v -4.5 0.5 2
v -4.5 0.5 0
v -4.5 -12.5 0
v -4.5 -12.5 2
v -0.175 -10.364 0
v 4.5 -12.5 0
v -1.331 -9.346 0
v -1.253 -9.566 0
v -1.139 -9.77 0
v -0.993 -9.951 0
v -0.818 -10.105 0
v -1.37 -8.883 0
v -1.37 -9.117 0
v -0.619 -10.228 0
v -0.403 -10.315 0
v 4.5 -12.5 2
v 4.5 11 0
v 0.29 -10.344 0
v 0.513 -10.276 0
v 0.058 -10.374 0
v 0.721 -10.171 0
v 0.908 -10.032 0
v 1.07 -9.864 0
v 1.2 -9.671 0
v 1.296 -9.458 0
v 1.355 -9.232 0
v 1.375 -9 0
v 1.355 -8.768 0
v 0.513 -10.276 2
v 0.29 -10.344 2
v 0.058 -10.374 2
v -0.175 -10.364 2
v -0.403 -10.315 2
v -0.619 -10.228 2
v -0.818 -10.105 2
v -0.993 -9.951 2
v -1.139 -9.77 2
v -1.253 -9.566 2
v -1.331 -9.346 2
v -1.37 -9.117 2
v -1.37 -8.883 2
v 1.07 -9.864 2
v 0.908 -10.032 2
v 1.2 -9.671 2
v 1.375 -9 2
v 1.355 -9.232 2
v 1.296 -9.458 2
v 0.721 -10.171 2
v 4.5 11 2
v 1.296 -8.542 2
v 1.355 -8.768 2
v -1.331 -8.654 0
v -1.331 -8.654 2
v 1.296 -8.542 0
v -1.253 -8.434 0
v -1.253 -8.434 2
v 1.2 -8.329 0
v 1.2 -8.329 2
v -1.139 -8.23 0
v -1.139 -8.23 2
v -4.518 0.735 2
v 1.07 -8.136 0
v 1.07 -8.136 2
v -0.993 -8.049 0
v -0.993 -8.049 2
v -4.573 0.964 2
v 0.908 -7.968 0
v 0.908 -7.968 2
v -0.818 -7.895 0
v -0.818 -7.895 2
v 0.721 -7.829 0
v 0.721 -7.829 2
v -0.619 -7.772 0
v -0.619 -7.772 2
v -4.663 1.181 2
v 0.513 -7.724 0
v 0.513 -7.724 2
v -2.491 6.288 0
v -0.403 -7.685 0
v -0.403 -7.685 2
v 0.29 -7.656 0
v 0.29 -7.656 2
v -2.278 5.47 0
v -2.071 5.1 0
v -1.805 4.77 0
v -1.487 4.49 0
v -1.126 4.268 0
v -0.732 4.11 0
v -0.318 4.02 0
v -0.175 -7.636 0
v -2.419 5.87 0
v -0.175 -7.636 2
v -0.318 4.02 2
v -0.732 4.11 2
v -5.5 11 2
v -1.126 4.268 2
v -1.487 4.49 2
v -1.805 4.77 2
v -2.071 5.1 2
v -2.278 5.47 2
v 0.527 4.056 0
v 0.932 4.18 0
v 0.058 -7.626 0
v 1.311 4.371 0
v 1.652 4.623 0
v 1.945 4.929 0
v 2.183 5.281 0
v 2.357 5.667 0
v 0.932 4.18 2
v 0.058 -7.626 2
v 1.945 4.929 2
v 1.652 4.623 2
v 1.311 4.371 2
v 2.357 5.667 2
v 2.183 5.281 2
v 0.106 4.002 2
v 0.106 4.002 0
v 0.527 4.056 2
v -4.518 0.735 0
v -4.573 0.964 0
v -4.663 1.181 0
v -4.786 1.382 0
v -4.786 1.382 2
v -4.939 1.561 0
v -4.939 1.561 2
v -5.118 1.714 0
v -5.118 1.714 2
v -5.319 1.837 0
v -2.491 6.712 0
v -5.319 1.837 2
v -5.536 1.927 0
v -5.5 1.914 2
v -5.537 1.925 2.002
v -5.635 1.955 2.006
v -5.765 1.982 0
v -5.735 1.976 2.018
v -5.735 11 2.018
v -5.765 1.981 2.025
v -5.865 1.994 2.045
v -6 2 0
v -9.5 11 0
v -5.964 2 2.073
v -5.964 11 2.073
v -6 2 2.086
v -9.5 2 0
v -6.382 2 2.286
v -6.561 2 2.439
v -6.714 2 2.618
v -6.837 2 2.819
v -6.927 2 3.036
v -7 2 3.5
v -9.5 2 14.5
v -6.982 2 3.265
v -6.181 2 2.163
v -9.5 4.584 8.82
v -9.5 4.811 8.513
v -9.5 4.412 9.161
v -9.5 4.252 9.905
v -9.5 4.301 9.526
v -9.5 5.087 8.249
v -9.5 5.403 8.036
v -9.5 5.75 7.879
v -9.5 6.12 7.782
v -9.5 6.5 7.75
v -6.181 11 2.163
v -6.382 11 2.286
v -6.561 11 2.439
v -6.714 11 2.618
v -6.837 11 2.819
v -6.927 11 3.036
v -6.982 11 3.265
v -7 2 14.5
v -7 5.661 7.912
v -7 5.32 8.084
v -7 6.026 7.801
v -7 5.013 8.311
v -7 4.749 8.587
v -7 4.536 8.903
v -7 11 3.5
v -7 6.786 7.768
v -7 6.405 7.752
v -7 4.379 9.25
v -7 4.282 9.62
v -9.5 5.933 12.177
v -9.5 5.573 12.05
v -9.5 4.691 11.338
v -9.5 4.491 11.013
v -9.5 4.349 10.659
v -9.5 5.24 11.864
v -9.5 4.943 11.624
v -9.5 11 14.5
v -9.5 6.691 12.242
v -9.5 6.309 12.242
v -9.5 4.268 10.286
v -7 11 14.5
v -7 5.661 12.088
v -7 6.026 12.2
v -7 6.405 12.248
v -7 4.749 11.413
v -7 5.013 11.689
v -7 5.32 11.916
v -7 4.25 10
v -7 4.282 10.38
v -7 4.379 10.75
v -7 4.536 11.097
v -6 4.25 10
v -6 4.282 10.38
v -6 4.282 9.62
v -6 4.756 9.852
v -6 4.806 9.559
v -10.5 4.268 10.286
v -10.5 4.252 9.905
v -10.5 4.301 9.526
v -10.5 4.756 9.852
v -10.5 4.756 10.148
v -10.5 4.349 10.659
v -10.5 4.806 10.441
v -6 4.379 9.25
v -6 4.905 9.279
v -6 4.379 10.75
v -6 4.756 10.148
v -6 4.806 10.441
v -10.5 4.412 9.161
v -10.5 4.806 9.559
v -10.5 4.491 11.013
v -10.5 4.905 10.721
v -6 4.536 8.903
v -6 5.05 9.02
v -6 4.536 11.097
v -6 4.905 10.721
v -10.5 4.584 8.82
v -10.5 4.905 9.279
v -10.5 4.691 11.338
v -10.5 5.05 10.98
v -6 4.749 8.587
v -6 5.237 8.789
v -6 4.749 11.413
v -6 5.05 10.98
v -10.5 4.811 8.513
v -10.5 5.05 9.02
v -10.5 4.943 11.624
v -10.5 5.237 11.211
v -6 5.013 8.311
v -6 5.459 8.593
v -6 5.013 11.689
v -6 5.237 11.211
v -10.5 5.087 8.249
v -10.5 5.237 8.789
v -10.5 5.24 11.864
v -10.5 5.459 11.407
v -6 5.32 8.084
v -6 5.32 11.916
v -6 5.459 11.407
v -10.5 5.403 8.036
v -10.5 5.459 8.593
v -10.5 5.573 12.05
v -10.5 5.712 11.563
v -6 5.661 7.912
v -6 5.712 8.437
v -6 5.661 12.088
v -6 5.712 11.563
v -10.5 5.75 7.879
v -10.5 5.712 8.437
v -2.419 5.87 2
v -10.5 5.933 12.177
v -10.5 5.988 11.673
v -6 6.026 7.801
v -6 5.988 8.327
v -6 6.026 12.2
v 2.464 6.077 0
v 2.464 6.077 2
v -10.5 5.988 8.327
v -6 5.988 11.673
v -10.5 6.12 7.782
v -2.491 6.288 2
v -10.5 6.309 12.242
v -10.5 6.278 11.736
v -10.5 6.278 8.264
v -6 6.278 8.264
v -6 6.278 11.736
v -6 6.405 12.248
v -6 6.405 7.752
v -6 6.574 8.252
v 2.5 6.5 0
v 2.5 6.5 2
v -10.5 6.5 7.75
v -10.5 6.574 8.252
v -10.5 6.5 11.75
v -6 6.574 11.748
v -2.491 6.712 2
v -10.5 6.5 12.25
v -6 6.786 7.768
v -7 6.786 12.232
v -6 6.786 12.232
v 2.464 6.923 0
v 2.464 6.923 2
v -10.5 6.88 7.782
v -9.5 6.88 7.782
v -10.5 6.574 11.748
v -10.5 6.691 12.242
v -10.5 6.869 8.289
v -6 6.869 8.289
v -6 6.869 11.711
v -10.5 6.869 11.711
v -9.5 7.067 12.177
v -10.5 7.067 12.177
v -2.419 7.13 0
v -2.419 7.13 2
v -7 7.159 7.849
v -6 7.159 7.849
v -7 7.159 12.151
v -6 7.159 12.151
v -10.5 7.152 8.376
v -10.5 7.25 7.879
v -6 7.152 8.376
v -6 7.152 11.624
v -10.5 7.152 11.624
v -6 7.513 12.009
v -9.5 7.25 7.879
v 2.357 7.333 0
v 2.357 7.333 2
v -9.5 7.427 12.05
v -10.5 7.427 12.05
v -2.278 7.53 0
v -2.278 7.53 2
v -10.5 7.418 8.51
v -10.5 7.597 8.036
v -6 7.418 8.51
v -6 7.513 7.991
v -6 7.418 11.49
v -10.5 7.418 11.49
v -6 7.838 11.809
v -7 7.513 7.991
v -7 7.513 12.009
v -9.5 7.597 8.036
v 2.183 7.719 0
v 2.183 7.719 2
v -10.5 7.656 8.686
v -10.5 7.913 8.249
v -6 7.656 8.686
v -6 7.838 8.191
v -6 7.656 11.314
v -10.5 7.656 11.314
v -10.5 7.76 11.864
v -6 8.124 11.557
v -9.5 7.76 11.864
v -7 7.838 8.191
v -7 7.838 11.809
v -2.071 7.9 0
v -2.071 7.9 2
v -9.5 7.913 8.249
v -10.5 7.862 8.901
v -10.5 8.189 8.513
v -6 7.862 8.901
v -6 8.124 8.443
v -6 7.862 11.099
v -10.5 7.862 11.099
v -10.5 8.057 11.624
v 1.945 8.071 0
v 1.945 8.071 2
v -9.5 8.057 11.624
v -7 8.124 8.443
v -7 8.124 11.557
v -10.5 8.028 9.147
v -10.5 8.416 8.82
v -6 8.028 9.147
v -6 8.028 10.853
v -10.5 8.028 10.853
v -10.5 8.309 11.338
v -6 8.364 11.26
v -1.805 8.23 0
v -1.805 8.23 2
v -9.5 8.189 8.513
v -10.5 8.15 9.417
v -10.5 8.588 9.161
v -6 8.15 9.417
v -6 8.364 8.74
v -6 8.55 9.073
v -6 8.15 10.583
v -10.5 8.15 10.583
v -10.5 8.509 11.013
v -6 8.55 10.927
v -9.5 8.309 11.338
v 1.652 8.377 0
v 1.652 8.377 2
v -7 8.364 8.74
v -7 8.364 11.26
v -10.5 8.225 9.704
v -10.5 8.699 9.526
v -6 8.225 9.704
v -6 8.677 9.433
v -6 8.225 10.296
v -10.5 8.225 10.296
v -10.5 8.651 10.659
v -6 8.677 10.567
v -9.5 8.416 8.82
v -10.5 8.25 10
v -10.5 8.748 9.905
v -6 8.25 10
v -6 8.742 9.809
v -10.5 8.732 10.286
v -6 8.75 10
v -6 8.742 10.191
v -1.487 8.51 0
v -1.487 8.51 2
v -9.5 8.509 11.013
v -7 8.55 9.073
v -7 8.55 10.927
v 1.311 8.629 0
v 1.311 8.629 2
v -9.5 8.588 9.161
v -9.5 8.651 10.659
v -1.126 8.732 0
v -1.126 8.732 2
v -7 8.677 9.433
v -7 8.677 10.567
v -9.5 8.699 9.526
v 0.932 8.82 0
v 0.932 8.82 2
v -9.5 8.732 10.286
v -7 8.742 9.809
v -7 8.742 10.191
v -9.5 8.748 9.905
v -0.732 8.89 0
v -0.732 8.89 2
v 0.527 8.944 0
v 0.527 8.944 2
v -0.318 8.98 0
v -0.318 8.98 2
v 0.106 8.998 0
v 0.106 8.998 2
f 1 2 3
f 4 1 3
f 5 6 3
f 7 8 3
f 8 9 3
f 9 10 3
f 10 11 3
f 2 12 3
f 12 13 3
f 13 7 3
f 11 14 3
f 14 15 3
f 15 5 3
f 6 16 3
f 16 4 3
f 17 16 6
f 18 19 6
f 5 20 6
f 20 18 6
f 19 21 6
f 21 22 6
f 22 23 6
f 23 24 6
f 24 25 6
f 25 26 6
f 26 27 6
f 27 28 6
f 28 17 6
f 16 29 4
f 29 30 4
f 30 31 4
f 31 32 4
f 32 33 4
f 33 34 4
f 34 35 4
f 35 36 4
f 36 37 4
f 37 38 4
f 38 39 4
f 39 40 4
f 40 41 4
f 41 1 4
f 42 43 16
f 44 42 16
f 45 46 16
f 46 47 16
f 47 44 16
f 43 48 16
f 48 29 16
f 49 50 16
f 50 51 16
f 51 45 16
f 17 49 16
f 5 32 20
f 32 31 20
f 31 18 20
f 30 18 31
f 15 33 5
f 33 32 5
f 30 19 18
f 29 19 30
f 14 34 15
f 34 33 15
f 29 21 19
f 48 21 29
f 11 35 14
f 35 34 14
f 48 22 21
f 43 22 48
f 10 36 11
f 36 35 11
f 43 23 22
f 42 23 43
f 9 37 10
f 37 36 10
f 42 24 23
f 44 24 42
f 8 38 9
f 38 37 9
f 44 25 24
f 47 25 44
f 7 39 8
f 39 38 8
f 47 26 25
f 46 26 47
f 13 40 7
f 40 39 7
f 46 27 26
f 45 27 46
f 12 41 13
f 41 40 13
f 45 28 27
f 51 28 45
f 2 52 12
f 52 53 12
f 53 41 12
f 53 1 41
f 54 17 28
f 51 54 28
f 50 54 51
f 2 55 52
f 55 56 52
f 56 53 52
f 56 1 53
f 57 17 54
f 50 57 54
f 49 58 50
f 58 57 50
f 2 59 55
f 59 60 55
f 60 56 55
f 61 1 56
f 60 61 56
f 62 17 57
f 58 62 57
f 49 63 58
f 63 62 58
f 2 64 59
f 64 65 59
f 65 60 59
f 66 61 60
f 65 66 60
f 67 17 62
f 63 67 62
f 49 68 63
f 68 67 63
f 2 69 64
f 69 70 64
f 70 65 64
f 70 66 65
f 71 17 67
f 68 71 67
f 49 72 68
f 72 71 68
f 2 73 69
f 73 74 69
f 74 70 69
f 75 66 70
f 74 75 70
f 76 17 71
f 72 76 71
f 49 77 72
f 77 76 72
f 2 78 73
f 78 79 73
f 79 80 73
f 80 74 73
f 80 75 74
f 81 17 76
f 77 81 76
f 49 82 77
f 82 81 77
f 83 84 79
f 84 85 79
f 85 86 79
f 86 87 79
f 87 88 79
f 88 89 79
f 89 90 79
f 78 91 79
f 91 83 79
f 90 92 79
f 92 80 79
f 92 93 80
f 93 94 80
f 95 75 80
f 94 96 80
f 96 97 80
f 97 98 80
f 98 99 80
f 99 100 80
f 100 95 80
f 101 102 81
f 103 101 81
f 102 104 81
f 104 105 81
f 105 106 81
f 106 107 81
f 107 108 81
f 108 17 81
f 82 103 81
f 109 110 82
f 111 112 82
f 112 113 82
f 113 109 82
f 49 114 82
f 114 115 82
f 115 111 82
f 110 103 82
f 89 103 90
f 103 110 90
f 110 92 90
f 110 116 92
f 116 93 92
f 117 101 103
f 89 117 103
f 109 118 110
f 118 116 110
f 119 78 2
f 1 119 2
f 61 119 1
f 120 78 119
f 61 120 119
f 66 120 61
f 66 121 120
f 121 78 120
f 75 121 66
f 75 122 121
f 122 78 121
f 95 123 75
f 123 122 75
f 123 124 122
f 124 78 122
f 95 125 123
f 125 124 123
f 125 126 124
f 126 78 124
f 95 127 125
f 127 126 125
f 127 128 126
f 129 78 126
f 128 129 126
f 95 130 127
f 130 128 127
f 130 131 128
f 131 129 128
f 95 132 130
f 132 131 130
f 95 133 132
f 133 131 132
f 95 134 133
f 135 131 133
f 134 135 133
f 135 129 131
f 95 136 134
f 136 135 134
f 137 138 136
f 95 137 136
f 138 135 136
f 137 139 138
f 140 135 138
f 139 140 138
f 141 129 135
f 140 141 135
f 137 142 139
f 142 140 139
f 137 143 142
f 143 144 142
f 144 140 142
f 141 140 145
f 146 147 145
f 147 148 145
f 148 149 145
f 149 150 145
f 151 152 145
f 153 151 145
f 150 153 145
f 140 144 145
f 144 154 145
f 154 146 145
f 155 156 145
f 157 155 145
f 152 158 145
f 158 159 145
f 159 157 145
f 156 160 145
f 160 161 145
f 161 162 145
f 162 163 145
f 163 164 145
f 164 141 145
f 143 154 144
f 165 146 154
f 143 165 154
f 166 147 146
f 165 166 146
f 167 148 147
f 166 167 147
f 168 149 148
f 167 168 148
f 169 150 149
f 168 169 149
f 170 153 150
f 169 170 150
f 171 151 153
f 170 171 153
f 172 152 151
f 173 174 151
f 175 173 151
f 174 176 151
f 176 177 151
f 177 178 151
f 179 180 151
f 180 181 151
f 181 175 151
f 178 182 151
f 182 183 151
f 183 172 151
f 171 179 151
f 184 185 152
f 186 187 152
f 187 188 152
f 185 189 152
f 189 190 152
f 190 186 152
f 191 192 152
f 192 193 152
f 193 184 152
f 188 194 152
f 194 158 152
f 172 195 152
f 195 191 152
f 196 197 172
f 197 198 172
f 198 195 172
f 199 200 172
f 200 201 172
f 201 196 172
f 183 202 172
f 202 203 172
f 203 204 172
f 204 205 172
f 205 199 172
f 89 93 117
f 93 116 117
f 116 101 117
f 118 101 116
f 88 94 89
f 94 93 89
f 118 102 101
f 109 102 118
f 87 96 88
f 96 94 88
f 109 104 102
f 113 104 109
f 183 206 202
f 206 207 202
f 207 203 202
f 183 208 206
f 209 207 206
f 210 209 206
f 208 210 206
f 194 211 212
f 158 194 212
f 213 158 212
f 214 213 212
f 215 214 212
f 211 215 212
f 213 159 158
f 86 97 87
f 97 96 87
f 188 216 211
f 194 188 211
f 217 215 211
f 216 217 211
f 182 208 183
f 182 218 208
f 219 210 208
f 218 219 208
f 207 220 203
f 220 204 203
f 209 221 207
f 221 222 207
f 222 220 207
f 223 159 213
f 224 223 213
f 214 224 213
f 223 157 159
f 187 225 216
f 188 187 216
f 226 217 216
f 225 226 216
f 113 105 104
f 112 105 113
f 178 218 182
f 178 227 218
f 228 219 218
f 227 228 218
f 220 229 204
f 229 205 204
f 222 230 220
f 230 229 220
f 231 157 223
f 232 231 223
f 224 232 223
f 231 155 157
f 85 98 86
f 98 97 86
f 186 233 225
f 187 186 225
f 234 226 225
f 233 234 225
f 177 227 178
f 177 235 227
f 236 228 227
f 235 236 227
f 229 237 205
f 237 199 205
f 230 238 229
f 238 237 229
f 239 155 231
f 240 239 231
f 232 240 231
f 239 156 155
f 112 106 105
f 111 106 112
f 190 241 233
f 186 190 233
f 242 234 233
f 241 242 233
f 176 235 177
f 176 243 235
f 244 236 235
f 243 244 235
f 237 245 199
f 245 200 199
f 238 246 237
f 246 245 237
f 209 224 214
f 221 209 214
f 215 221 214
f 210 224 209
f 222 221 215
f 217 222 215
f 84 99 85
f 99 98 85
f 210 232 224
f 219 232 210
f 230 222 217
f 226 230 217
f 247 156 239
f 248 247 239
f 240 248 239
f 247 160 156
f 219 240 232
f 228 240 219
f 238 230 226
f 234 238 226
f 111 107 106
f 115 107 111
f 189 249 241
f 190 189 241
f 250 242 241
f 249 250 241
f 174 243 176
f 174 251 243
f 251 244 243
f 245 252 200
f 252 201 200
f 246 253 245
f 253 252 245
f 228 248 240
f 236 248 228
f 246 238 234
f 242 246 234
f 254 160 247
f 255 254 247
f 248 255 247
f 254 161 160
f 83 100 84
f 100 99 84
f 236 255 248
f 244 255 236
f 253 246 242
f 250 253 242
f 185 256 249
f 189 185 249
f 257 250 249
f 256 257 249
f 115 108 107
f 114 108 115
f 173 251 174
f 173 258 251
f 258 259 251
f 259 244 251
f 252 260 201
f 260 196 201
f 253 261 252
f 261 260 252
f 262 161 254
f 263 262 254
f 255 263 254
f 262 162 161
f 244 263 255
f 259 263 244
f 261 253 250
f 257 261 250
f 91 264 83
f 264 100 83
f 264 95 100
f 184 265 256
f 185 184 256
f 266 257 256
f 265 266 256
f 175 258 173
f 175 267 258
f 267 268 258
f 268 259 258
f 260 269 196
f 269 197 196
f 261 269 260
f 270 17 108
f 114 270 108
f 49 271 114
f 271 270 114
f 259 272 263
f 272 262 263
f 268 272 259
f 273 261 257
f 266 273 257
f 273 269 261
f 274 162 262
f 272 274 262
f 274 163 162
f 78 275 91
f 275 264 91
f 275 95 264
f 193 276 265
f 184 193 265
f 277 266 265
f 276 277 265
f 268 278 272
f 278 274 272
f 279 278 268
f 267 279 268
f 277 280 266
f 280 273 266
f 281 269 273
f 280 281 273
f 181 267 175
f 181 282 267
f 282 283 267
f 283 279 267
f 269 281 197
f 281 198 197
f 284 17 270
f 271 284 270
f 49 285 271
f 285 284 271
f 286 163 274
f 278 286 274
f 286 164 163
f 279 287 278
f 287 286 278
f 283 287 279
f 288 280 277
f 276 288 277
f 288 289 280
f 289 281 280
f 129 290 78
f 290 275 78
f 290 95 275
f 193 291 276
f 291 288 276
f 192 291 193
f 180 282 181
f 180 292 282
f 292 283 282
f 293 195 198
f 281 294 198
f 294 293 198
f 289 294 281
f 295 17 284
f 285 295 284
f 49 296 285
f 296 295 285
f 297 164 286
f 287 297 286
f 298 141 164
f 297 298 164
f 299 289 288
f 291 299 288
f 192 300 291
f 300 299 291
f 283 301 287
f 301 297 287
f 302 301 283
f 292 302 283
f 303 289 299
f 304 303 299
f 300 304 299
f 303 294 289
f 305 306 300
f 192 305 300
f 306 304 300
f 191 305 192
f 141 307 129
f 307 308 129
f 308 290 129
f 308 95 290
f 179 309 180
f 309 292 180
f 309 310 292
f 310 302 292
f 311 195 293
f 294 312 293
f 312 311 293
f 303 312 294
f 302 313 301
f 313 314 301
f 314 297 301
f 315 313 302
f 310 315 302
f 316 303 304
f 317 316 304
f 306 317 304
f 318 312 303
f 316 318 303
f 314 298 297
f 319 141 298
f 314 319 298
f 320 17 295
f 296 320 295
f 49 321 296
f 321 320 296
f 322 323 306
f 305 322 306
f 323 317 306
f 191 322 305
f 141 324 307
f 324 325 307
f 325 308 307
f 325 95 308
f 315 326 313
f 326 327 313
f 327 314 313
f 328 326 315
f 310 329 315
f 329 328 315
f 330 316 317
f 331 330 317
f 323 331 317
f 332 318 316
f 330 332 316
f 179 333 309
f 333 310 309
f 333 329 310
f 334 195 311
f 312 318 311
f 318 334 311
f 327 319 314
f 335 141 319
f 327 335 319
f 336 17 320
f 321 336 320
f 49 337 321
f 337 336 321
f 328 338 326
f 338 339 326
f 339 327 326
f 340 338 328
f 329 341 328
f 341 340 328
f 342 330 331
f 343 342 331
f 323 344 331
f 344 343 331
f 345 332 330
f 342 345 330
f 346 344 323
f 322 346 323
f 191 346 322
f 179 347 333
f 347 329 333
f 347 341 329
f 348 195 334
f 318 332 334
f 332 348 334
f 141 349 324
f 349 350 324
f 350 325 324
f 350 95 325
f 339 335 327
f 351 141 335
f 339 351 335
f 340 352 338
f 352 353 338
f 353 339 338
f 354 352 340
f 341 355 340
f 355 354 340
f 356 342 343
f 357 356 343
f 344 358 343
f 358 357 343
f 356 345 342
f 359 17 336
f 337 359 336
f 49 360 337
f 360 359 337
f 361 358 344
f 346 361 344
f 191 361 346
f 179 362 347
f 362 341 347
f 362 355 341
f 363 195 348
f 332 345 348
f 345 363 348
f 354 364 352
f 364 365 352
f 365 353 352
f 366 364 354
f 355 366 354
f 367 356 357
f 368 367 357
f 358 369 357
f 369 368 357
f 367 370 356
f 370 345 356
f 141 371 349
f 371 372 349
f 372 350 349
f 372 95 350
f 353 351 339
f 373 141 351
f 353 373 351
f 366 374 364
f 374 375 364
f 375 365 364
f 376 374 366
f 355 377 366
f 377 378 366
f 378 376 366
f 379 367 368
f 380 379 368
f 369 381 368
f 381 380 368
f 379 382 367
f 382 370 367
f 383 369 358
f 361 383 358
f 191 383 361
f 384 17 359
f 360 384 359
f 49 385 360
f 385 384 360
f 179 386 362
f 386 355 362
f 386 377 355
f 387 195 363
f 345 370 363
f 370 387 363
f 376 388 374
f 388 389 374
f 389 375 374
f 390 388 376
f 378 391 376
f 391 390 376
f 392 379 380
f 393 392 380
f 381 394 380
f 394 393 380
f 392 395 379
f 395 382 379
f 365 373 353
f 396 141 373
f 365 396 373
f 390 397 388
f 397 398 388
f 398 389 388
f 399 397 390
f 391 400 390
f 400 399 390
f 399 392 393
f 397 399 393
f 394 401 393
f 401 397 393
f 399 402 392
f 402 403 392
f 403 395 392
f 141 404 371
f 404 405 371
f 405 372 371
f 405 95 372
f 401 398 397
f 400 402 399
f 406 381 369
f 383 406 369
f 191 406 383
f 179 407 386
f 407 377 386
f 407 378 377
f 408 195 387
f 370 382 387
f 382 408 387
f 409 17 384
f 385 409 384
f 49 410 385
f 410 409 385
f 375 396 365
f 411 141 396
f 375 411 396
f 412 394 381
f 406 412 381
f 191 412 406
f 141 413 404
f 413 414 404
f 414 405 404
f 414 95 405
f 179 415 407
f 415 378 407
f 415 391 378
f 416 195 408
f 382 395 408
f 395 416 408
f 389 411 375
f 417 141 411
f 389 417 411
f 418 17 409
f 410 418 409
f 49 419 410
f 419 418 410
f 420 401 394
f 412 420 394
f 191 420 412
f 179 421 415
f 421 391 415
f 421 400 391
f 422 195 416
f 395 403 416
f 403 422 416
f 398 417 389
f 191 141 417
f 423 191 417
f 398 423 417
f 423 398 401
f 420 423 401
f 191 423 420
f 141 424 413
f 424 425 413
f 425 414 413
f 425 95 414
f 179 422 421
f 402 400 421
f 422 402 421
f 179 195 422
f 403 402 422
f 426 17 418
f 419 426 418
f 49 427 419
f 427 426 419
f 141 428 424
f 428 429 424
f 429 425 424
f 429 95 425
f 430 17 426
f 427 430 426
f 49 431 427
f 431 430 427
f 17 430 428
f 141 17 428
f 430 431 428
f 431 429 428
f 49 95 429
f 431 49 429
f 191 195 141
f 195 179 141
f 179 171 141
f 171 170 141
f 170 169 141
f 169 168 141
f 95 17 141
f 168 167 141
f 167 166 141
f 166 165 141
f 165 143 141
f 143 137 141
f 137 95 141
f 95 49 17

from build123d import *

# Parameters (mm, degrees)
SKETCH1_W           = 9
SKETCH1_H           = 22
BOSS_EXTRUDE1_DEPTH = 2
SKETCH2_R           = 2.5
SKETCH2_R_2         = 1.375
CUT_EXTRUDE1_DEPTH  = 2
SKETCH3_W           = 2
SKETCH3_H           = 9
BOSS_EXTRUDE2_DEPTH = 5
SKETCH5_W           = 2.5
SKETCH5_H           = 9
BOSS_EXTRUDE4_DEPTH = 12.5
SKETCH6_R           = 1.75
CUT_EXTRUDE2_DEPTH  = 2.5
SKETCH7_R           = 2.25
BOSS_EXTRUDE5_DEPTH = 1
SKETCH8_R           = 1.75
CUT_EXTRUDE3_DEPTH  = 1
SKETCH9_R           = 2.25
BOSS_EXTRUDE6_DEPTH = 1
SKETCH10_R          = 1.75
CUT_EXTRUDE4_DEPTH  = 1
FILLET1_R           = 1.5
FILLET2_R           = 1.5
SKETCH11_W          = 9
SKETCH11_H          = 2
BOSS_EXTRUDE7_DEPTH = 1.5


with BuildPart() as part:
    # Sketch1 → Boss-Extrude1 (new body)
    with BuildSketch(Plane.XY):
        Rectangle(SKETCH1_W, SKETCH1_H)
    extrude(amount=BOSS_EXTRUDE1_DEPTH)

    # Sketch2 → Cut-Extrude1 (cut)
    with BuildSketch(Plane.XY.offset(2)):
        with Locations((0, 6.5)):
            Circle(SKETCH2_R)
        with Locations((0, -9)):
            Circle(SKETCH2_R_2)
    extrude(amount=-CUT_EXTRUDE1_DEPTH, mode=Mode.SUBTRACT)

    # Sketch3 → Boss-Extrude2 (add)
    with BuildSketch(Plane.ZY.offset(4.5)):
        with Locations((1, 6.5)):
            Rectangle(SKETCH3_W, SKETCH3_H)
    extrude(amount=BOSS_EXTRUDE2_DEPTH)

    # Sketch5 → Boss-Extrude4 (add)
    with BuildSketch(Plane.XY.offset(2)):
        with Locations((-8.25, 6.5)):
            Rectangle(SKETCH5_W, SKETCH5_H)
    extrude(amount=BOSS_EXTRUDE4_DEPTH)

    # Sketch6 → Cut-Extrude2 (cut)
    with BuildSketch(Plane(origin=(-7, 0, 0), x_dir=(0, 0, -1), z_dir=(1, 0, 0))):
        with Locations((-10, 6.5)):
            Circle(SKETCH6_R)
    extrude(amount=-CUT_EXTRUDE2_DEPTH, mode=Mode.SUBTRACT)

    # Sketch7 → Boss-Extrude5 (add)
    with BuildSketch(Plane(origin=(-7, 0, 0), x_dir=(0, 0, -1), z_dir=(1, 0, 0))):
        with Locations((-10, 6.5)):
            Circle(SKETCH7_R)
    extrude(amount=BOSS_EXTRUDE5_DEPTH)

    # Sketch8 → Cut-Extrude3 (cut)
    with BuildSketch(Plane(origin=(-6, 0, 0), x_dir=(0, 0, -1), z_dir=(1, 0, 0))):
        with Locations((-10, 6.5)):
            Circle(SKETCH8_R)
    extrude(amount=-CUT_EXTRUDE3_DEPTH, mode=Mode.SUBTRACT)

    # Sketch9 → Boss-Extrude6 (add)
    with BuildSketch(Plane.ZY.offset(9.5)):
        with Locations((10, 6.5)):
            Circle(SKETCH9_R)
    extrude(amount=BOSS_EXTRUDE6_DEPTH)

    # Sketch10 → Cut-Extrude4 (cut)
    with BuildSketch(Plane.ZY.offset(10.5)):
        with Locations((10, 6.5)):
            Circle(SKETCH10_R)
    extrude(amount=-CUT_EXTRUDE4_DEPTH, mode=Mode.SUBTRACT)

    # Fillet1
    fillet1_edges = [part.edges().sort_by_distance(p)[0] for p in [
        (-7, 6.5, 2),
    ]]
    fillet(fillet1_edges, radius=FILLET1_R)

    # Fillet2
    fillet2_edges = [part.edges().sort_by_distance(p)[0] for p in [
        (-4.5, 2, 1),
    ]]
    fillet(fillet2_edges, radius=FILLET2_R)

    # Sketch11 → Boss-Extrude7 (add)
    with BuildSketch(Plane.XZ.offset(11)):
        with Locations((0, 1)):
            Rectangle(SKETCH11_W, SKETCH11_H)
    extrude(amount=BOSS_EXTRUDE7_DEPTH)


solid = part.part
